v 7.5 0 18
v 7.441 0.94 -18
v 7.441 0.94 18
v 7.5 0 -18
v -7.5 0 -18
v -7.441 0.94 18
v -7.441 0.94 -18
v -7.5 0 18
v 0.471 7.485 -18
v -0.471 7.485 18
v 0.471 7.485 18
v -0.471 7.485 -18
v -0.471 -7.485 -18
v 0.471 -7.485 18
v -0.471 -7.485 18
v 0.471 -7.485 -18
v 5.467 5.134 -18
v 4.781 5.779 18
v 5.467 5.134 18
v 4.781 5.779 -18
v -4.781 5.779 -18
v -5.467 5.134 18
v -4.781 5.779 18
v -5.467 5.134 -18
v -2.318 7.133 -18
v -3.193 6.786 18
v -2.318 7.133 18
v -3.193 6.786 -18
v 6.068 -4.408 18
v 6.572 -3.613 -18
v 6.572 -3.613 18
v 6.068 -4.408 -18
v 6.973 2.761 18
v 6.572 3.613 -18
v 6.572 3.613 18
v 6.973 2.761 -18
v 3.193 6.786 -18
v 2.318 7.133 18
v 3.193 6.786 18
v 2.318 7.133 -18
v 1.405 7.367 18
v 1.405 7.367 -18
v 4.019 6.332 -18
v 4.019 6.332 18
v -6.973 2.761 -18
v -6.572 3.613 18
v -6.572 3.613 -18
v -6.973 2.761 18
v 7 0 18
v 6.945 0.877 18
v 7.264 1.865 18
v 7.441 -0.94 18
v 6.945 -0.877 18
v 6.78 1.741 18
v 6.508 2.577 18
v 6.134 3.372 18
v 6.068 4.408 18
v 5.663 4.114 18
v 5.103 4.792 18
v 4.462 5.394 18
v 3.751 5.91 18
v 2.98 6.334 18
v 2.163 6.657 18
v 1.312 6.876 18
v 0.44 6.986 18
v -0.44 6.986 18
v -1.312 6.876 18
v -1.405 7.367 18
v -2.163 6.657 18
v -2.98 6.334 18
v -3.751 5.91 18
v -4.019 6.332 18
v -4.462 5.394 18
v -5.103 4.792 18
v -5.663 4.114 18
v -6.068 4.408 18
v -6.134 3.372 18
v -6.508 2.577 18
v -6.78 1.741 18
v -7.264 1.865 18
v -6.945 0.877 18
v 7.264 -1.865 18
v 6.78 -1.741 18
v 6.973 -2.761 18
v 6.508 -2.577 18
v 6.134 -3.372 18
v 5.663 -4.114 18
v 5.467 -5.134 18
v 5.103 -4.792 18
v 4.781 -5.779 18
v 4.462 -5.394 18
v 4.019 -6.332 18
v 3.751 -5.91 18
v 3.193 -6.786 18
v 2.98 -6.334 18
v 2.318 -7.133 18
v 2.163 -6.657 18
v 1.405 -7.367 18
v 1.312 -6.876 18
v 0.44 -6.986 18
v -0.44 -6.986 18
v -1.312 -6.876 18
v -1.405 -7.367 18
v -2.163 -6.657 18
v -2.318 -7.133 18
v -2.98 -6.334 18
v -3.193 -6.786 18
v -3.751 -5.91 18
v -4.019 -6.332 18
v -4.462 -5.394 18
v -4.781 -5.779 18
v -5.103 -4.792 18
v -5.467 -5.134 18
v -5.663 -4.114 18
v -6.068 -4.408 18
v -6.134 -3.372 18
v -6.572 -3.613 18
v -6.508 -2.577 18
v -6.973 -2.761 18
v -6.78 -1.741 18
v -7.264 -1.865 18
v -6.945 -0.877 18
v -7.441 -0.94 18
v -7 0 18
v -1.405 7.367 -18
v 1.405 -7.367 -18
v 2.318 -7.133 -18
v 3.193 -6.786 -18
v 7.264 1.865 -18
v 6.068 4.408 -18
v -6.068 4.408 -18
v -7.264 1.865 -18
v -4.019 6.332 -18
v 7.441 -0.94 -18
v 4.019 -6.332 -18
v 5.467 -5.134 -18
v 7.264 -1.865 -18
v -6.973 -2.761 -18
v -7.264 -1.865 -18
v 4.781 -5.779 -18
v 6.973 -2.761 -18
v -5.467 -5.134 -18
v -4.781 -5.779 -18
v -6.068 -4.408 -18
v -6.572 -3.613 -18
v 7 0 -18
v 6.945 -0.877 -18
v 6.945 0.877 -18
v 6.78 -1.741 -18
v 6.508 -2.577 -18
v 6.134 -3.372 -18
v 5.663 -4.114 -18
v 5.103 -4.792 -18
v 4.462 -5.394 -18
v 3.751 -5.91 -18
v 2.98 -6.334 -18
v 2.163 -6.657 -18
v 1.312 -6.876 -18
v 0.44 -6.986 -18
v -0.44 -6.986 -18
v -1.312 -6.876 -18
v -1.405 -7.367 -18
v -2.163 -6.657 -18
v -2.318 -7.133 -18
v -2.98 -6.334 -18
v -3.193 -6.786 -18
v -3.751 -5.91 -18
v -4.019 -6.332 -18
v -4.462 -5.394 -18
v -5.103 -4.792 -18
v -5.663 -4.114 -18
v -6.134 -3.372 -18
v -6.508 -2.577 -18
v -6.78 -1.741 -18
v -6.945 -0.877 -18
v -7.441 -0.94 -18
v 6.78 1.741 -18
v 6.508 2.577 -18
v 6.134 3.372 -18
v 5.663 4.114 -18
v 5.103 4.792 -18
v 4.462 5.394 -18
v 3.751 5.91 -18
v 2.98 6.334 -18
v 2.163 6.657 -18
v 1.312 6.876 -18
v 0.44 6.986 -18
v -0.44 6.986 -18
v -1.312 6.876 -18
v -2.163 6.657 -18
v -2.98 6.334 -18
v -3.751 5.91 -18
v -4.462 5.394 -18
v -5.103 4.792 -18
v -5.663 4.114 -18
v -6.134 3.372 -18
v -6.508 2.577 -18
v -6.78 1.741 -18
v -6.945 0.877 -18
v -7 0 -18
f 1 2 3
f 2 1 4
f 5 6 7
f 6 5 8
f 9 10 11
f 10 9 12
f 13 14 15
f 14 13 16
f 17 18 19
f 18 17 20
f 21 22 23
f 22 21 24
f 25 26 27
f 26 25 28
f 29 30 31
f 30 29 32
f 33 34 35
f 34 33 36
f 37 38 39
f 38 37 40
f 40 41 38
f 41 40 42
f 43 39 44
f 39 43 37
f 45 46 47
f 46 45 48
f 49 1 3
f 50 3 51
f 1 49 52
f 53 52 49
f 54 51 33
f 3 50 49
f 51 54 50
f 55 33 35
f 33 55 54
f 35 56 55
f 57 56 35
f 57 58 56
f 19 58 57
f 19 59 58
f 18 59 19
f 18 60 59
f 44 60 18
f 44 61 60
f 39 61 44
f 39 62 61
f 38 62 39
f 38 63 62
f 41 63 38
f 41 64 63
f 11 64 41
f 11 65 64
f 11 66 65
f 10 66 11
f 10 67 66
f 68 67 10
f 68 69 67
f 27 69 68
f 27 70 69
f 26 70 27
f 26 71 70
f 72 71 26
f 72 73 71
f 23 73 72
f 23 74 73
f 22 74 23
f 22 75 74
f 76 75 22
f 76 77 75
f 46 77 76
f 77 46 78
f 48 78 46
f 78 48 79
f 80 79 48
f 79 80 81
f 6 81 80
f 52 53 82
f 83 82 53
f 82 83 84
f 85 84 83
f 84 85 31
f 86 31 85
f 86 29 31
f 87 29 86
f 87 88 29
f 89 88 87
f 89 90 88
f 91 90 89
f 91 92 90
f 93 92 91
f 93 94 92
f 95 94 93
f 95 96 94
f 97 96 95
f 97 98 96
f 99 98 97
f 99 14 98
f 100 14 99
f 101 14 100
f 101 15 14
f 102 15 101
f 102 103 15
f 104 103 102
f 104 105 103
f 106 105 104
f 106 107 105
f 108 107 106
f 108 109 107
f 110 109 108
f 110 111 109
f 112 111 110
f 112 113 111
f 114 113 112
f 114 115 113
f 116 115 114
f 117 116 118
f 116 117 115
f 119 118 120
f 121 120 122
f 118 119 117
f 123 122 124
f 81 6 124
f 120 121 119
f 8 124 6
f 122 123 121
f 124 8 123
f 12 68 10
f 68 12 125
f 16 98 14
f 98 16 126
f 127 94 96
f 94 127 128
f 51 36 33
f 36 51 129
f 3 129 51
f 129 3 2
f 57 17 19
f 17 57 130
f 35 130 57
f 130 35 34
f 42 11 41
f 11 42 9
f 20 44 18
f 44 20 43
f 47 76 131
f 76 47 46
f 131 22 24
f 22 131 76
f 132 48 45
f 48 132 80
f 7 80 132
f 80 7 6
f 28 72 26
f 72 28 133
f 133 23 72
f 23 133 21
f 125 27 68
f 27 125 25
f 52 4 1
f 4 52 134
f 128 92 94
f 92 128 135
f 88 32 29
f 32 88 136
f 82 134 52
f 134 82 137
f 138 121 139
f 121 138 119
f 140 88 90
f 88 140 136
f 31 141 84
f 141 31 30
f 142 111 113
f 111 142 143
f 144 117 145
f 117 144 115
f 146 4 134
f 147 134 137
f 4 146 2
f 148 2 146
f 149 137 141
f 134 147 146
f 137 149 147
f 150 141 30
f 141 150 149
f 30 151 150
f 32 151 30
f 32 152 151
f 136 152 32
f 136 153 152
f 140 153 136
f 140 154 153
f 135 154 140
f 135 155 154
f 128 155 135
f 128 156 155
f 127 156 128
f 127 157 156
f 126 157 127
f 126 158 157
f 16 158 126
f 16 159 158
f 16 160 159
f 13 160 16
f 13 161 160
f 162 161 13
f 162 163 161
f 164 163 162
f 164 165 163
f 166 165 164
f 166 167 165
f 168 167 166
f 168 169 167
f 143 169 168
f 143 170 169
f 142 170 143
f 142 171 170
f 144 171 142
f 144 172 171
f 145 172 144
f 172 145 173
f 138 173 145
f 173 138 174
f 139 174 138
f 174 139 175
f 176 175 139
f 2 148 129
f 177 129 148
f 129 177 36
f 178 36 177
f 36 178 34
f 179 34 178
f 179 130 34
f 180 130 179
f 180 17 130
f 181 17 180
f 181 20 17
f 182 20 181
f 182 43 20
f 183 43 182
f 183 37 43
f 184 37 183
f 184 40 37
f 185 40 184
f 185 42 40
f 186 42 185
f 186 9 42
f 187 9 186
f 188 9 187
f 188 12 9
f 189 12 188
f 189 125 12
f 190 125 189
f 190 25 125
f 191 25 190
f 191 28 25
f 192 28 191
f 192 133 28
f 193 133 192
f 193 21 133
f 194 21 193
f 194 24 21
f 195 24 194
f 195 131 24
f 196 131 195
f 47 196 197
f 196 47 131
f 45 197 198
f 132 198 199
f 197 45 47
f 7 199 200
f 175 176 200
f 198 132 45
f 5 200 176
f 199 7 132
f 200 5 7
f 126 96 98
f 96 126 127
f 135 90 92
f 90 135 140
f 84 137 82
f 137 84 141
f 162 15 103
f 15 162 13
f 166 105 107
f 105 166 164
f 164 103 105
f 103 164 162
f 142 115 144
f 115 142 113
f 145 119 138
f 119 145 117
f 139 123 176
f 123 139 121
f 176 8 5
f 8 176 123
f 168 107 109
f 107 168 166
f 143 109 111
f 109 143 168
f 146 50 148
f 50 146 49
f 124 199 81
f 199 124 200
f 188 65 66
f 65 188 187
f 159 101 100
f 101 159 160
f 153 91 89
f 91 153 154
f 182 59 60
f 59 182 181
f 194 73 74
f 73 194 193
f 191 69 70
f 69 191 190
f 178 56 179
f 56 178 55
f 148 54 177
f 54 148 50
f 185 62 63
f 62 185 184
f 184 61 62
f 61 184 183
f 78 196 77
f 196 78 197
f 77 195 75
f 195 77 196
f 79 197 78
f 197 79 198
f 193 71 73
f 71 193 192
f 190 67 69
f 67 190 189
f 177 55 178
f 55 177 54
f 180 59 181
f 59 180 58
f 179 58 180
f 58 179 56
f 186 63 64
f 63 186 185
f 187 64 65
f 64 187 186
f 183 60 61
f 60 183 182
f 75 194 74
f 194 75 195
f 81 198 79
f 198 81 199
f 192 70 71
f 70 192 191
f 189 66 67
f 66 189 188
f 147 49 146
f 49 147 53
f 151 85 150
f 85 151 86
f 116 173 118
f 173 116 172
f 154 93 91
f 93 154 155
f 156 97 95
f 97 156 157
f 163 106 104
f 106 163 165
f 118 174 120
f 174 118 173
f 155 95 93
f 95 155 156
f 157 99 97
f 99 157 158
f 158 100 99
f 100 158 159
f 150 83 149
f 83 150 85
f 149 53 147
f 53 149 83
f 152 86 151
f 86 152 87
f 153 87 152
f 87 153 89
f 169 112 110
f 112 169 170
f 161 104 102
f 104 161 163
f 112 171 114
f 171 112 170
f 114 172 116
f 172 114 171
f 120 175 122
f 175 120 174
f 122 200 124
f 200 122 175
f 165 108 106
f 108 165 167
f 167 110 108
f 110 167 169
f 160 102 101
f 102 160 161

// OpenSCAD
$fn = 50;


difference() {
	union() {
		translate(v = [0, 0, -18.0000000000]) {
			cylinder(h = 36, r = 7.5000000000);
		}
	}
	union() {
		translate(v = [0, 0, -100.0000000000]) {
			cylinder(h = 200, r = 7);
		}
	}
}
